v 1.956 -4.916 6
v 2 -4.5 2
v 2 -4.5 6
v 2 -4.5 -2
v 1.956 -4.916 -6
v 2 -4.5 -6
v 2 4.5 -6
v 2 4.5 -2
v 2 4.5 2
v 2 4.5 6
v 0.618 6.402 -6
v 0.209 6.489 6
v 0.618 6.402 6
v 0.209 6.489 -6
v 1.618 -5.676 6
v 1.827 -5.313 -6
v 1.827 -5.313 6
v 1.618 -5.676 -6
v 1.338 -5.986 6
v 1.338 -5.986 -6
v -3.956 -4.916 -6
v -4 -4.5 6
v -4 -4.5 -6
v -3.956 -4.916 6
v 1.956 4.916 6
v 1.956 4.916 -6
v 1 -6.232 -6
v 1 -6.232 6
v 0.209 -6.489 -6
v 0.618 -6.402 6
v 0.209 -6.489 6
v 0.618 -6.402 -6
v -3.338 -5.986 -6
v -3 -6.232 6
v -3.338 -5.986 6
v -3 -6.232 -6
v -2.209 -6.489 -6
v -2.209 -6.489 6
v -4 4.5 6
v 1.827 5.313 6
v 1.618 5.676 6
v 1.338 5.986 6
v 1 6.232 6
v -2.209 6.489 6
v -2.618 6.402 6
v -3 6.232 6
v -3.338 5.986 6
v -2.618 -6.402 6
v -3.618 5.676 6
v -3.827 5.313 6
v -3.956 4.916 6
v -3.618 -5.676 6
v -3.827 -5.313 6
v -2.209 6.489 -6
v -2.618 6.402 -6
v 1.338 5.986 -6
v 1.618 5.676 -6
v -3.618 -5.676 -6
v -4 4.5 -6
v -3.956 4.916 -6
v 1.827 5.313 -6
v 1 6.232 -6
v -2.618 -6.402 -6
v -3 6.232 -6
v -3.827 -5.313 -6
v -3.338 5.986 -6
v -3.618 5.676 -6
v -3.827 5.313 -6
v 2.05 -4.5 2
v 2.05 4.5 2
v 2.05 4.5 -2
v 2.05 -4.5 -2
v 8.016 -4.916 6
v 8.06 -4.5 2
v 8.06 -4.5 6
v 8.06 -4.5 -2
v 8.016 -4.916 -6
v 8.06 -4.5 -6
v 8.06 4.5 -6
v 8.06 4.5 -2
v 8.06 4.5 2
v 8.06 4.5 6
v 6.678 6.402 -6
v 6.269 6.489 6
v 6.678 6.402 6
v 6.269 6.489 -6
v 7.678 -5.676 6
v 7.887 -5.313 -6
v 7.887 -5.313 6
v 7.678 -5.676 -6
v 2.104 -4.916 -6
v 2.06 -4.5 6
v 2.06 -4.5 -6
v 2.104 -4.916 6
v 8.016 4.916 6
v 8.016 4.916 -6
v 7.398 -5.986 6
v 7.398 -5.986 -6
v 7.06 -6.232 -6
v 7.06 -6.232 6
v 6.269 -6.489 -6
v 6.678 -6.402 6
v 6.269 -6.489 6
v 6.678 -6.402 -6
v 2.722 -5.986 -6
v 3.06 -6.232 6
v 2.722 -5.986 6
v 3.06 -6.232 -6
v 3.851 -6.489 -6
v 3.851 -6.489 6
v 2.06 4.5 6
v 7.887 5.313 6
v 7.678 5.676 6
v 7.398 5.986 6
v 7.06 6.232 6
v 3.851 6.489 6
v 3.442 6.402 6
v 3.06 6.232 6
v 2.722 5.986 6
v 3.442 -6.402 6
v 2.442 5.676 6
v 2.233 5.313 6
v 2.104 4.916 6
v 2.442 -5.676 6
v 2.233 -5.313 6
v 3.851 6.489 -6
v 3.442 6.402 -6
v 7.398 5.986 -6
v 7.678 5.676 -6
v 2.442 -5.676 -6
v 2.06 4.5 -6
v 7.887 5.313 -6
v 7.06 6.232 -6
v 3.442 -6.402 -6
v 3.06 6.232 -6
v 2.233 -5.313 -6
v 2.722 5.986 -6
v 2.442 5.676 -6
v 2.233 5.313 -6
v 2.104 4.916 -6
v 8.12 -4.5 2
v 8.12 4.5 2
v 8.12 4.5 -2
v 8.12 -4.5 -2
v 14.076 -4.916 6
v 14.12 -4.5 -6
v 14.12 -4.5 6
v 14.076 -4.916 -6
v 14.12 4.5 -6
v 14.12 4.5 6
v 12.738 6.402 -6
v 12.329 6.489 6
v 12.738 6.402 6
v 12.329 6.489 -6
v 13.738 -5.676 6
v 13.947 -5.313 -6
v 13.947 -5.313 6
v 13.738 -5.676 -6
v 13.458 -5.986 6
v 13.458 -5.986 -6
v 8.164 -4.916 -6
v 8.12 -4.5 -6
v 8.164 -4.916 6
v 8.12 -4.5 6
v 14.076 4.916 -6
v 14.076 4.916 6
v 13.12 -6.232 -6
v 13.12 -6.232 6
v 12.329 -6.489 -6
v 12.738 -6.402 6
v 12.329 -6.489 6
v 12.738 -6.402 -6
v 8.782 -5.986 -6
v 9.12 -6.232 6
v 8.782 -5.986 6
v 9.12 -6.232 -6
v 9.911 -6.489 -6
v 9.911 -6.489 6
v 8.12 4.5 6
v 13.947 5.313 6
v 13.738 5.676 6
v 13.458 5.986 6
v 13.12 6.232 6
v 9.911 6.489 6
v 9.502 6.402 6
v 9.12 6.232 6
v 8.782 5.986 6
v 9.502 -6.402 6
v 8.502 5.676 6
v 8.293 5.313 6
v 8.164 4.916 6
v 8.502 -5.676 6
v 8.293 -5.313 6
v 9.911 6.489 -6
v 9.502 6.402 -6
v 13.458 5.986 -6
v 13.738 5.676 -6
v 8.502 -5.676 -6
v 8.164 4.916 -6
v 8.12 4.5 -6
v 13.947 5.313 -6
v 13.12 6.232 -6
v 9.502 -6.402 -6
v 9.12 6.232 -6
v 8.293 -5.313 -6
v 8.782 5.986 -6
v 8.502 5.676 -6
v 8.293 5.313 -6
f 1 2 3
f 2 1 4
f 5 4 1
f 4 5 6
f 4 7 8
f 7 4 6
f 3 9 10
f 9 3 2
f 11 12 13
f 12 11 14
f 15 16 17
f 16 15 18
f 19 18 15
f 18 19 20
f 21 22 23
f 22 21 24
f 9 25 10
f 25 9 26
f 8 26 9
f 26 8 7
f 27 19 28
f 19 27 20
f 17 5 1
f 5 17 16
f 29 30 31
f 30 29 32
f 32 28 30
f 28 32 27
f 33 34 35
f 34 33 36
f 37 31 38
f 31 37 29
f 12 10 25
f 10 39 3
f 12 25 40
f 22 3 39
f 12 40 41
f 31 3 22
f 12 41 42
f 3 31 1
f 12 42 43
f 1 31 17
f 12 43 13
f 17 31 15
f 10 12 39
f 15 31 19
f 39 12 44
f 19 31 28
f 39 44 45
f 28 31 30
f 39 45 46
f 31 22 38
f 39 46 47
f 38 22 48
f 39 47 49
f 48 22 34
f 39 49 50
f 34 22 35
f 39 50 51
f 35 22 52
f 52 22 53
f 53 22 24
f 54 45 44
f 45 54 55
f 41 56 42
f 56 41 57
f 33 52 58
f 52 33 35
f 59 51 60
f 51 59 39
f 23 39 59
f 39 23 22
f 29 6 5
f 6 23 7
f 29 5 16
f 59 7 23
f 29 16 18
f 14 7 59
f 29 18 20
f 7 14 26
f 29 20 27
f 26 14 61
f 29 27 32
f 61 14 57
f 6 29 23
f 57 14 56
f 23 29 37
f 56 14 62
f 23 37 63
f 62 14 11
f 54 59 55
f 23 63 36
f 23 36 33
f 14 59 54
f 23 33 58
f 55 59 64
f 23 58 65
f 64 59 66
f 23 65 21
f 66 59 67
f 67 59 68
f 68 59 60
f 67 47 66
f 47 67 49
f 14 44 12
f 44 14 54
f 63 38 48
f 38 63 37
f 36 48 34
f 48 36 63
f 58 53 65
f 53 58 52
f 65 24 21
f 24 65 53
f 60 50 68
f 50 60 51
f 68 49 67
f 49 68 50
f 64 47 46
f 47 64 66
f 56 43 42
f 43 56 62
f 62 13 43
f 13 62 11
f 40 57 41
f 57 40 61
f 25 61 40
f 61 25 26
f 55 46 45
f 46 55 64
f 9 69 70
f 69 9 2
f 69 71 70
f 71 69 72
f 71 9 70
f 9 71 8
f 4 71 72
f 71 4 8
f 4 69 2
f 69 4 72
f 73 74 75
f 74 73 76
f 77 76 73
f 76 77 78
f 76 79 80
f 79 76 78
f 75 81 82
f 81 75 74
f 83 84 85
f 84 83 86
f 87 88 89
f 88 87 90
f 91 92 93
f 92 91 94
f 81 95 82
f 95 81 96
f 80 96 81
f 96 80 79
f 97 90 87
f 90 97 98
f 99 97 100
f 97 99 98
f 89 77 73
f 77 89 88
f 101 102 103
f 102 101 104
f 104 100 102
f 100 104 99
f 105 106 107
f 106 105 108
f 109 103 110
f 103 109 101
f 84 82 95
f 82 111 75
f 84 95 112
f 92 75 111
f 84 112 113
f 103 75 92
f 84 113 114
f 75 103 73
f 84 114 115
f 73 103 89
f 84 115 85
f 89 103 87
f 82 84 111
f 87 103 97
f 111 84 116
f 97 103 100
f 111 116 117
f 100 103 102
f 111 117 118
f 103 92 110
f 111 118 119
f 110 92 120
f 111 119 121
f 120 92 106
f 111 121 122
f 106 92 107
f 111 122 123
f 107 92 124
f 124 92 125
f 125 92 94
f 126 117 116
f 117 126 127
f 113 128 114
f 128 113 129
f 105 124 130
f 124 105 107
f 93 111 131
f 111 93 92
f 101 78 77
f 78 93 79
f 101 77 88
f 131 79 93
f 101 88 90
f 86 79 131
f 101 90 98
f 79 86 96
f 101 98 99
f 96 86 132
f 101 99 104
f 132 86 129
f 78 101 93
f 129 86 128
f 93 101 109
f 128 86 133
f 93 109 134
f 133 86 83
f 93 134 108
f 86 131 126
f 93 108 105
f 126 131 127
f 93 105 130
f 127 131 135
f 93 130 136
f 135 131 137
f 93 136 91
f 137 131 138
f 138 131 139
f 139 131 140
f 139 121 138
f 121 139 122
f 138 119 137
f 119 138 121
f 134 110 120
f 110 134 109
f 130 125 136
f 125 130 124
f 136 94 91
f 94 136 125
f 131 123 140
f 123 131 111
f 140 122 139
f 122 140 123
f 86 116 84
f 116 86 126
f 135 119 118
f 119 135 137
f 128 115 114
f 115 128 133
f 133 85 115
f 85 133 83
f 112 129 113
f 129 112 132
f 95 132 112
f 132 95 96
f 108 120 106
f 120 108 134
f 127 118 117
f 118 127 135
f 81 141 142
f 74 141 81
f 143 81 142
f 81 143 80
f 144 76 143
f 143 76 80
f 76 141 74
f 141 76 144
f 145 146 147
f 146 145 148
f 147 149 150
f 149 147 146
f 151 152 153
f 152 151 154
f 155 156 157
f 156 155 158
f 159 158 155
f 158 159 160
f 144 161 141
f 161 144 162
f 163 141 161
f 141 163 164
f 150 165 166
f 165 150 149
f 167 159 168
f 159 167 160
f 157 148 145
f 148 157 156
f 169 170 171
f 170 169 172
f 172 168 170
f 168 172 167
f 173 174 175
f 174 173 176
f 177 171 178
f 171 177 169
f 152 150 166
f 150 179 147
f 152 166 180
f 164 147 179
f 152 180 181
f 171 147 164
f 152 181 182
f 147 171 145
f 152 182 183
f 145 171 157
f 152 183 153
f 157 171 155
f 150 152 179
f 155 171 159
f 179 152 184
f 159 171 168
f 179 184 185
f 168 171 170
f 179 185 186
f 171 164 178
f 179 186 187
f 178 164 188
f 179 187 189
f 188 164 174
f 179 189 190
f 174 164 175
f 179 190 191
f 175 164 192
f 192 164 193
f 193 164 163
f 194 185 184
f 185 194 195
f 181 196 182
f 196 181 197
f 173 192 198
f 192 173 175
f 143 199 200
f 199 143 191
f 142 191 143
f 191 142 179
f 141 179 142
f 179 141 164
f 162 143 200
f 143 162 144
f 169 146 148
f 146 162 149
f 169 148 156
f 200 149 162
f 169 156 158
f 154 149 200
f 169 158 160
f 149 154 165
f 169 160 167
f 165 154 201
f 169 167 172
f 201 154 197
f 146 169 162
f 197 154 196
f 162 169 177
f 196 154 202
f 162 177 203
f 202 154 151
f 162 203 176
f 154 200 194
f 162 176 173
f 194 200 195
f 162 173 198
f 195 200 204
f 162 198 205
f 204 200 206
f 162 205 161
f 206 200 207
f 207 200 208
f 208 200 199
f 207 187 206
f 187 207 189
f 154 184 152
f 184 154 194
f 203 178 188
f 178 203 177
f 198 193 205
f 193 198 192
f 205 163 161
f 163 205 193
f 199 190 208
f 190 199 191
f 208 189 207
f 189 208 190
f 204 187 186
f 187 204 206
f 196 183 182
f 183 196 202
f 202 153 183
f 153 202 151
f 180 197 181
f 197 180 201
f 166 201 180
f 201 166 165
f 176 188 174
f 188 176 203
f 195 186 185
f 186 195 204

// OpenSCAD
$fn=30;
height=12;
radius=2;
union(){
    hull(){
        translate([0,-4.5,0])cylinder(r=radius,h=height, center=true);
        translate([-2,4.5,0])cylinder(r=radius,h=height, center=true);
        translate([0,4.5,0])cylinder(r=radius,h=height, center=true);
        translate([-2,-4.5,0])cylinder(r=radius,h=height, center=true);
  }
  translate([2,0,0])cube([radius/20,radius+7,radius+2],center=true);
   translate([6.06,0,0]) hull(){
        translate([0,-4.5,0])cylinder(r=radius,h=height, center=true);
        translate([-2,4.5,0])cylinder(r=radius,h=height, center=true);
        translate([0,4.5,0])cylinder(r=radius,h=height, center=true);
        translate([-2,-4.5,0])cylinder(r=radius,h=height, center=true);
  }
  translate([8.1,0,0])cube([radius/20,radius+7,radius+2],center=true);
   translate([12.12,0,0]) hull(){
        translate([0,-4.5,0])cylinder(r=radius,h=height, center=true);
        translate([-2,4.5,0])cylinder(r=radius,h=height, center=true);
        translate([0,4.5,0])cylinder(r=radius,h=height, center=true);
        translate([-2,-4.5,0])cylinder(r=radius,h=height, center=true);
  }
}
  
